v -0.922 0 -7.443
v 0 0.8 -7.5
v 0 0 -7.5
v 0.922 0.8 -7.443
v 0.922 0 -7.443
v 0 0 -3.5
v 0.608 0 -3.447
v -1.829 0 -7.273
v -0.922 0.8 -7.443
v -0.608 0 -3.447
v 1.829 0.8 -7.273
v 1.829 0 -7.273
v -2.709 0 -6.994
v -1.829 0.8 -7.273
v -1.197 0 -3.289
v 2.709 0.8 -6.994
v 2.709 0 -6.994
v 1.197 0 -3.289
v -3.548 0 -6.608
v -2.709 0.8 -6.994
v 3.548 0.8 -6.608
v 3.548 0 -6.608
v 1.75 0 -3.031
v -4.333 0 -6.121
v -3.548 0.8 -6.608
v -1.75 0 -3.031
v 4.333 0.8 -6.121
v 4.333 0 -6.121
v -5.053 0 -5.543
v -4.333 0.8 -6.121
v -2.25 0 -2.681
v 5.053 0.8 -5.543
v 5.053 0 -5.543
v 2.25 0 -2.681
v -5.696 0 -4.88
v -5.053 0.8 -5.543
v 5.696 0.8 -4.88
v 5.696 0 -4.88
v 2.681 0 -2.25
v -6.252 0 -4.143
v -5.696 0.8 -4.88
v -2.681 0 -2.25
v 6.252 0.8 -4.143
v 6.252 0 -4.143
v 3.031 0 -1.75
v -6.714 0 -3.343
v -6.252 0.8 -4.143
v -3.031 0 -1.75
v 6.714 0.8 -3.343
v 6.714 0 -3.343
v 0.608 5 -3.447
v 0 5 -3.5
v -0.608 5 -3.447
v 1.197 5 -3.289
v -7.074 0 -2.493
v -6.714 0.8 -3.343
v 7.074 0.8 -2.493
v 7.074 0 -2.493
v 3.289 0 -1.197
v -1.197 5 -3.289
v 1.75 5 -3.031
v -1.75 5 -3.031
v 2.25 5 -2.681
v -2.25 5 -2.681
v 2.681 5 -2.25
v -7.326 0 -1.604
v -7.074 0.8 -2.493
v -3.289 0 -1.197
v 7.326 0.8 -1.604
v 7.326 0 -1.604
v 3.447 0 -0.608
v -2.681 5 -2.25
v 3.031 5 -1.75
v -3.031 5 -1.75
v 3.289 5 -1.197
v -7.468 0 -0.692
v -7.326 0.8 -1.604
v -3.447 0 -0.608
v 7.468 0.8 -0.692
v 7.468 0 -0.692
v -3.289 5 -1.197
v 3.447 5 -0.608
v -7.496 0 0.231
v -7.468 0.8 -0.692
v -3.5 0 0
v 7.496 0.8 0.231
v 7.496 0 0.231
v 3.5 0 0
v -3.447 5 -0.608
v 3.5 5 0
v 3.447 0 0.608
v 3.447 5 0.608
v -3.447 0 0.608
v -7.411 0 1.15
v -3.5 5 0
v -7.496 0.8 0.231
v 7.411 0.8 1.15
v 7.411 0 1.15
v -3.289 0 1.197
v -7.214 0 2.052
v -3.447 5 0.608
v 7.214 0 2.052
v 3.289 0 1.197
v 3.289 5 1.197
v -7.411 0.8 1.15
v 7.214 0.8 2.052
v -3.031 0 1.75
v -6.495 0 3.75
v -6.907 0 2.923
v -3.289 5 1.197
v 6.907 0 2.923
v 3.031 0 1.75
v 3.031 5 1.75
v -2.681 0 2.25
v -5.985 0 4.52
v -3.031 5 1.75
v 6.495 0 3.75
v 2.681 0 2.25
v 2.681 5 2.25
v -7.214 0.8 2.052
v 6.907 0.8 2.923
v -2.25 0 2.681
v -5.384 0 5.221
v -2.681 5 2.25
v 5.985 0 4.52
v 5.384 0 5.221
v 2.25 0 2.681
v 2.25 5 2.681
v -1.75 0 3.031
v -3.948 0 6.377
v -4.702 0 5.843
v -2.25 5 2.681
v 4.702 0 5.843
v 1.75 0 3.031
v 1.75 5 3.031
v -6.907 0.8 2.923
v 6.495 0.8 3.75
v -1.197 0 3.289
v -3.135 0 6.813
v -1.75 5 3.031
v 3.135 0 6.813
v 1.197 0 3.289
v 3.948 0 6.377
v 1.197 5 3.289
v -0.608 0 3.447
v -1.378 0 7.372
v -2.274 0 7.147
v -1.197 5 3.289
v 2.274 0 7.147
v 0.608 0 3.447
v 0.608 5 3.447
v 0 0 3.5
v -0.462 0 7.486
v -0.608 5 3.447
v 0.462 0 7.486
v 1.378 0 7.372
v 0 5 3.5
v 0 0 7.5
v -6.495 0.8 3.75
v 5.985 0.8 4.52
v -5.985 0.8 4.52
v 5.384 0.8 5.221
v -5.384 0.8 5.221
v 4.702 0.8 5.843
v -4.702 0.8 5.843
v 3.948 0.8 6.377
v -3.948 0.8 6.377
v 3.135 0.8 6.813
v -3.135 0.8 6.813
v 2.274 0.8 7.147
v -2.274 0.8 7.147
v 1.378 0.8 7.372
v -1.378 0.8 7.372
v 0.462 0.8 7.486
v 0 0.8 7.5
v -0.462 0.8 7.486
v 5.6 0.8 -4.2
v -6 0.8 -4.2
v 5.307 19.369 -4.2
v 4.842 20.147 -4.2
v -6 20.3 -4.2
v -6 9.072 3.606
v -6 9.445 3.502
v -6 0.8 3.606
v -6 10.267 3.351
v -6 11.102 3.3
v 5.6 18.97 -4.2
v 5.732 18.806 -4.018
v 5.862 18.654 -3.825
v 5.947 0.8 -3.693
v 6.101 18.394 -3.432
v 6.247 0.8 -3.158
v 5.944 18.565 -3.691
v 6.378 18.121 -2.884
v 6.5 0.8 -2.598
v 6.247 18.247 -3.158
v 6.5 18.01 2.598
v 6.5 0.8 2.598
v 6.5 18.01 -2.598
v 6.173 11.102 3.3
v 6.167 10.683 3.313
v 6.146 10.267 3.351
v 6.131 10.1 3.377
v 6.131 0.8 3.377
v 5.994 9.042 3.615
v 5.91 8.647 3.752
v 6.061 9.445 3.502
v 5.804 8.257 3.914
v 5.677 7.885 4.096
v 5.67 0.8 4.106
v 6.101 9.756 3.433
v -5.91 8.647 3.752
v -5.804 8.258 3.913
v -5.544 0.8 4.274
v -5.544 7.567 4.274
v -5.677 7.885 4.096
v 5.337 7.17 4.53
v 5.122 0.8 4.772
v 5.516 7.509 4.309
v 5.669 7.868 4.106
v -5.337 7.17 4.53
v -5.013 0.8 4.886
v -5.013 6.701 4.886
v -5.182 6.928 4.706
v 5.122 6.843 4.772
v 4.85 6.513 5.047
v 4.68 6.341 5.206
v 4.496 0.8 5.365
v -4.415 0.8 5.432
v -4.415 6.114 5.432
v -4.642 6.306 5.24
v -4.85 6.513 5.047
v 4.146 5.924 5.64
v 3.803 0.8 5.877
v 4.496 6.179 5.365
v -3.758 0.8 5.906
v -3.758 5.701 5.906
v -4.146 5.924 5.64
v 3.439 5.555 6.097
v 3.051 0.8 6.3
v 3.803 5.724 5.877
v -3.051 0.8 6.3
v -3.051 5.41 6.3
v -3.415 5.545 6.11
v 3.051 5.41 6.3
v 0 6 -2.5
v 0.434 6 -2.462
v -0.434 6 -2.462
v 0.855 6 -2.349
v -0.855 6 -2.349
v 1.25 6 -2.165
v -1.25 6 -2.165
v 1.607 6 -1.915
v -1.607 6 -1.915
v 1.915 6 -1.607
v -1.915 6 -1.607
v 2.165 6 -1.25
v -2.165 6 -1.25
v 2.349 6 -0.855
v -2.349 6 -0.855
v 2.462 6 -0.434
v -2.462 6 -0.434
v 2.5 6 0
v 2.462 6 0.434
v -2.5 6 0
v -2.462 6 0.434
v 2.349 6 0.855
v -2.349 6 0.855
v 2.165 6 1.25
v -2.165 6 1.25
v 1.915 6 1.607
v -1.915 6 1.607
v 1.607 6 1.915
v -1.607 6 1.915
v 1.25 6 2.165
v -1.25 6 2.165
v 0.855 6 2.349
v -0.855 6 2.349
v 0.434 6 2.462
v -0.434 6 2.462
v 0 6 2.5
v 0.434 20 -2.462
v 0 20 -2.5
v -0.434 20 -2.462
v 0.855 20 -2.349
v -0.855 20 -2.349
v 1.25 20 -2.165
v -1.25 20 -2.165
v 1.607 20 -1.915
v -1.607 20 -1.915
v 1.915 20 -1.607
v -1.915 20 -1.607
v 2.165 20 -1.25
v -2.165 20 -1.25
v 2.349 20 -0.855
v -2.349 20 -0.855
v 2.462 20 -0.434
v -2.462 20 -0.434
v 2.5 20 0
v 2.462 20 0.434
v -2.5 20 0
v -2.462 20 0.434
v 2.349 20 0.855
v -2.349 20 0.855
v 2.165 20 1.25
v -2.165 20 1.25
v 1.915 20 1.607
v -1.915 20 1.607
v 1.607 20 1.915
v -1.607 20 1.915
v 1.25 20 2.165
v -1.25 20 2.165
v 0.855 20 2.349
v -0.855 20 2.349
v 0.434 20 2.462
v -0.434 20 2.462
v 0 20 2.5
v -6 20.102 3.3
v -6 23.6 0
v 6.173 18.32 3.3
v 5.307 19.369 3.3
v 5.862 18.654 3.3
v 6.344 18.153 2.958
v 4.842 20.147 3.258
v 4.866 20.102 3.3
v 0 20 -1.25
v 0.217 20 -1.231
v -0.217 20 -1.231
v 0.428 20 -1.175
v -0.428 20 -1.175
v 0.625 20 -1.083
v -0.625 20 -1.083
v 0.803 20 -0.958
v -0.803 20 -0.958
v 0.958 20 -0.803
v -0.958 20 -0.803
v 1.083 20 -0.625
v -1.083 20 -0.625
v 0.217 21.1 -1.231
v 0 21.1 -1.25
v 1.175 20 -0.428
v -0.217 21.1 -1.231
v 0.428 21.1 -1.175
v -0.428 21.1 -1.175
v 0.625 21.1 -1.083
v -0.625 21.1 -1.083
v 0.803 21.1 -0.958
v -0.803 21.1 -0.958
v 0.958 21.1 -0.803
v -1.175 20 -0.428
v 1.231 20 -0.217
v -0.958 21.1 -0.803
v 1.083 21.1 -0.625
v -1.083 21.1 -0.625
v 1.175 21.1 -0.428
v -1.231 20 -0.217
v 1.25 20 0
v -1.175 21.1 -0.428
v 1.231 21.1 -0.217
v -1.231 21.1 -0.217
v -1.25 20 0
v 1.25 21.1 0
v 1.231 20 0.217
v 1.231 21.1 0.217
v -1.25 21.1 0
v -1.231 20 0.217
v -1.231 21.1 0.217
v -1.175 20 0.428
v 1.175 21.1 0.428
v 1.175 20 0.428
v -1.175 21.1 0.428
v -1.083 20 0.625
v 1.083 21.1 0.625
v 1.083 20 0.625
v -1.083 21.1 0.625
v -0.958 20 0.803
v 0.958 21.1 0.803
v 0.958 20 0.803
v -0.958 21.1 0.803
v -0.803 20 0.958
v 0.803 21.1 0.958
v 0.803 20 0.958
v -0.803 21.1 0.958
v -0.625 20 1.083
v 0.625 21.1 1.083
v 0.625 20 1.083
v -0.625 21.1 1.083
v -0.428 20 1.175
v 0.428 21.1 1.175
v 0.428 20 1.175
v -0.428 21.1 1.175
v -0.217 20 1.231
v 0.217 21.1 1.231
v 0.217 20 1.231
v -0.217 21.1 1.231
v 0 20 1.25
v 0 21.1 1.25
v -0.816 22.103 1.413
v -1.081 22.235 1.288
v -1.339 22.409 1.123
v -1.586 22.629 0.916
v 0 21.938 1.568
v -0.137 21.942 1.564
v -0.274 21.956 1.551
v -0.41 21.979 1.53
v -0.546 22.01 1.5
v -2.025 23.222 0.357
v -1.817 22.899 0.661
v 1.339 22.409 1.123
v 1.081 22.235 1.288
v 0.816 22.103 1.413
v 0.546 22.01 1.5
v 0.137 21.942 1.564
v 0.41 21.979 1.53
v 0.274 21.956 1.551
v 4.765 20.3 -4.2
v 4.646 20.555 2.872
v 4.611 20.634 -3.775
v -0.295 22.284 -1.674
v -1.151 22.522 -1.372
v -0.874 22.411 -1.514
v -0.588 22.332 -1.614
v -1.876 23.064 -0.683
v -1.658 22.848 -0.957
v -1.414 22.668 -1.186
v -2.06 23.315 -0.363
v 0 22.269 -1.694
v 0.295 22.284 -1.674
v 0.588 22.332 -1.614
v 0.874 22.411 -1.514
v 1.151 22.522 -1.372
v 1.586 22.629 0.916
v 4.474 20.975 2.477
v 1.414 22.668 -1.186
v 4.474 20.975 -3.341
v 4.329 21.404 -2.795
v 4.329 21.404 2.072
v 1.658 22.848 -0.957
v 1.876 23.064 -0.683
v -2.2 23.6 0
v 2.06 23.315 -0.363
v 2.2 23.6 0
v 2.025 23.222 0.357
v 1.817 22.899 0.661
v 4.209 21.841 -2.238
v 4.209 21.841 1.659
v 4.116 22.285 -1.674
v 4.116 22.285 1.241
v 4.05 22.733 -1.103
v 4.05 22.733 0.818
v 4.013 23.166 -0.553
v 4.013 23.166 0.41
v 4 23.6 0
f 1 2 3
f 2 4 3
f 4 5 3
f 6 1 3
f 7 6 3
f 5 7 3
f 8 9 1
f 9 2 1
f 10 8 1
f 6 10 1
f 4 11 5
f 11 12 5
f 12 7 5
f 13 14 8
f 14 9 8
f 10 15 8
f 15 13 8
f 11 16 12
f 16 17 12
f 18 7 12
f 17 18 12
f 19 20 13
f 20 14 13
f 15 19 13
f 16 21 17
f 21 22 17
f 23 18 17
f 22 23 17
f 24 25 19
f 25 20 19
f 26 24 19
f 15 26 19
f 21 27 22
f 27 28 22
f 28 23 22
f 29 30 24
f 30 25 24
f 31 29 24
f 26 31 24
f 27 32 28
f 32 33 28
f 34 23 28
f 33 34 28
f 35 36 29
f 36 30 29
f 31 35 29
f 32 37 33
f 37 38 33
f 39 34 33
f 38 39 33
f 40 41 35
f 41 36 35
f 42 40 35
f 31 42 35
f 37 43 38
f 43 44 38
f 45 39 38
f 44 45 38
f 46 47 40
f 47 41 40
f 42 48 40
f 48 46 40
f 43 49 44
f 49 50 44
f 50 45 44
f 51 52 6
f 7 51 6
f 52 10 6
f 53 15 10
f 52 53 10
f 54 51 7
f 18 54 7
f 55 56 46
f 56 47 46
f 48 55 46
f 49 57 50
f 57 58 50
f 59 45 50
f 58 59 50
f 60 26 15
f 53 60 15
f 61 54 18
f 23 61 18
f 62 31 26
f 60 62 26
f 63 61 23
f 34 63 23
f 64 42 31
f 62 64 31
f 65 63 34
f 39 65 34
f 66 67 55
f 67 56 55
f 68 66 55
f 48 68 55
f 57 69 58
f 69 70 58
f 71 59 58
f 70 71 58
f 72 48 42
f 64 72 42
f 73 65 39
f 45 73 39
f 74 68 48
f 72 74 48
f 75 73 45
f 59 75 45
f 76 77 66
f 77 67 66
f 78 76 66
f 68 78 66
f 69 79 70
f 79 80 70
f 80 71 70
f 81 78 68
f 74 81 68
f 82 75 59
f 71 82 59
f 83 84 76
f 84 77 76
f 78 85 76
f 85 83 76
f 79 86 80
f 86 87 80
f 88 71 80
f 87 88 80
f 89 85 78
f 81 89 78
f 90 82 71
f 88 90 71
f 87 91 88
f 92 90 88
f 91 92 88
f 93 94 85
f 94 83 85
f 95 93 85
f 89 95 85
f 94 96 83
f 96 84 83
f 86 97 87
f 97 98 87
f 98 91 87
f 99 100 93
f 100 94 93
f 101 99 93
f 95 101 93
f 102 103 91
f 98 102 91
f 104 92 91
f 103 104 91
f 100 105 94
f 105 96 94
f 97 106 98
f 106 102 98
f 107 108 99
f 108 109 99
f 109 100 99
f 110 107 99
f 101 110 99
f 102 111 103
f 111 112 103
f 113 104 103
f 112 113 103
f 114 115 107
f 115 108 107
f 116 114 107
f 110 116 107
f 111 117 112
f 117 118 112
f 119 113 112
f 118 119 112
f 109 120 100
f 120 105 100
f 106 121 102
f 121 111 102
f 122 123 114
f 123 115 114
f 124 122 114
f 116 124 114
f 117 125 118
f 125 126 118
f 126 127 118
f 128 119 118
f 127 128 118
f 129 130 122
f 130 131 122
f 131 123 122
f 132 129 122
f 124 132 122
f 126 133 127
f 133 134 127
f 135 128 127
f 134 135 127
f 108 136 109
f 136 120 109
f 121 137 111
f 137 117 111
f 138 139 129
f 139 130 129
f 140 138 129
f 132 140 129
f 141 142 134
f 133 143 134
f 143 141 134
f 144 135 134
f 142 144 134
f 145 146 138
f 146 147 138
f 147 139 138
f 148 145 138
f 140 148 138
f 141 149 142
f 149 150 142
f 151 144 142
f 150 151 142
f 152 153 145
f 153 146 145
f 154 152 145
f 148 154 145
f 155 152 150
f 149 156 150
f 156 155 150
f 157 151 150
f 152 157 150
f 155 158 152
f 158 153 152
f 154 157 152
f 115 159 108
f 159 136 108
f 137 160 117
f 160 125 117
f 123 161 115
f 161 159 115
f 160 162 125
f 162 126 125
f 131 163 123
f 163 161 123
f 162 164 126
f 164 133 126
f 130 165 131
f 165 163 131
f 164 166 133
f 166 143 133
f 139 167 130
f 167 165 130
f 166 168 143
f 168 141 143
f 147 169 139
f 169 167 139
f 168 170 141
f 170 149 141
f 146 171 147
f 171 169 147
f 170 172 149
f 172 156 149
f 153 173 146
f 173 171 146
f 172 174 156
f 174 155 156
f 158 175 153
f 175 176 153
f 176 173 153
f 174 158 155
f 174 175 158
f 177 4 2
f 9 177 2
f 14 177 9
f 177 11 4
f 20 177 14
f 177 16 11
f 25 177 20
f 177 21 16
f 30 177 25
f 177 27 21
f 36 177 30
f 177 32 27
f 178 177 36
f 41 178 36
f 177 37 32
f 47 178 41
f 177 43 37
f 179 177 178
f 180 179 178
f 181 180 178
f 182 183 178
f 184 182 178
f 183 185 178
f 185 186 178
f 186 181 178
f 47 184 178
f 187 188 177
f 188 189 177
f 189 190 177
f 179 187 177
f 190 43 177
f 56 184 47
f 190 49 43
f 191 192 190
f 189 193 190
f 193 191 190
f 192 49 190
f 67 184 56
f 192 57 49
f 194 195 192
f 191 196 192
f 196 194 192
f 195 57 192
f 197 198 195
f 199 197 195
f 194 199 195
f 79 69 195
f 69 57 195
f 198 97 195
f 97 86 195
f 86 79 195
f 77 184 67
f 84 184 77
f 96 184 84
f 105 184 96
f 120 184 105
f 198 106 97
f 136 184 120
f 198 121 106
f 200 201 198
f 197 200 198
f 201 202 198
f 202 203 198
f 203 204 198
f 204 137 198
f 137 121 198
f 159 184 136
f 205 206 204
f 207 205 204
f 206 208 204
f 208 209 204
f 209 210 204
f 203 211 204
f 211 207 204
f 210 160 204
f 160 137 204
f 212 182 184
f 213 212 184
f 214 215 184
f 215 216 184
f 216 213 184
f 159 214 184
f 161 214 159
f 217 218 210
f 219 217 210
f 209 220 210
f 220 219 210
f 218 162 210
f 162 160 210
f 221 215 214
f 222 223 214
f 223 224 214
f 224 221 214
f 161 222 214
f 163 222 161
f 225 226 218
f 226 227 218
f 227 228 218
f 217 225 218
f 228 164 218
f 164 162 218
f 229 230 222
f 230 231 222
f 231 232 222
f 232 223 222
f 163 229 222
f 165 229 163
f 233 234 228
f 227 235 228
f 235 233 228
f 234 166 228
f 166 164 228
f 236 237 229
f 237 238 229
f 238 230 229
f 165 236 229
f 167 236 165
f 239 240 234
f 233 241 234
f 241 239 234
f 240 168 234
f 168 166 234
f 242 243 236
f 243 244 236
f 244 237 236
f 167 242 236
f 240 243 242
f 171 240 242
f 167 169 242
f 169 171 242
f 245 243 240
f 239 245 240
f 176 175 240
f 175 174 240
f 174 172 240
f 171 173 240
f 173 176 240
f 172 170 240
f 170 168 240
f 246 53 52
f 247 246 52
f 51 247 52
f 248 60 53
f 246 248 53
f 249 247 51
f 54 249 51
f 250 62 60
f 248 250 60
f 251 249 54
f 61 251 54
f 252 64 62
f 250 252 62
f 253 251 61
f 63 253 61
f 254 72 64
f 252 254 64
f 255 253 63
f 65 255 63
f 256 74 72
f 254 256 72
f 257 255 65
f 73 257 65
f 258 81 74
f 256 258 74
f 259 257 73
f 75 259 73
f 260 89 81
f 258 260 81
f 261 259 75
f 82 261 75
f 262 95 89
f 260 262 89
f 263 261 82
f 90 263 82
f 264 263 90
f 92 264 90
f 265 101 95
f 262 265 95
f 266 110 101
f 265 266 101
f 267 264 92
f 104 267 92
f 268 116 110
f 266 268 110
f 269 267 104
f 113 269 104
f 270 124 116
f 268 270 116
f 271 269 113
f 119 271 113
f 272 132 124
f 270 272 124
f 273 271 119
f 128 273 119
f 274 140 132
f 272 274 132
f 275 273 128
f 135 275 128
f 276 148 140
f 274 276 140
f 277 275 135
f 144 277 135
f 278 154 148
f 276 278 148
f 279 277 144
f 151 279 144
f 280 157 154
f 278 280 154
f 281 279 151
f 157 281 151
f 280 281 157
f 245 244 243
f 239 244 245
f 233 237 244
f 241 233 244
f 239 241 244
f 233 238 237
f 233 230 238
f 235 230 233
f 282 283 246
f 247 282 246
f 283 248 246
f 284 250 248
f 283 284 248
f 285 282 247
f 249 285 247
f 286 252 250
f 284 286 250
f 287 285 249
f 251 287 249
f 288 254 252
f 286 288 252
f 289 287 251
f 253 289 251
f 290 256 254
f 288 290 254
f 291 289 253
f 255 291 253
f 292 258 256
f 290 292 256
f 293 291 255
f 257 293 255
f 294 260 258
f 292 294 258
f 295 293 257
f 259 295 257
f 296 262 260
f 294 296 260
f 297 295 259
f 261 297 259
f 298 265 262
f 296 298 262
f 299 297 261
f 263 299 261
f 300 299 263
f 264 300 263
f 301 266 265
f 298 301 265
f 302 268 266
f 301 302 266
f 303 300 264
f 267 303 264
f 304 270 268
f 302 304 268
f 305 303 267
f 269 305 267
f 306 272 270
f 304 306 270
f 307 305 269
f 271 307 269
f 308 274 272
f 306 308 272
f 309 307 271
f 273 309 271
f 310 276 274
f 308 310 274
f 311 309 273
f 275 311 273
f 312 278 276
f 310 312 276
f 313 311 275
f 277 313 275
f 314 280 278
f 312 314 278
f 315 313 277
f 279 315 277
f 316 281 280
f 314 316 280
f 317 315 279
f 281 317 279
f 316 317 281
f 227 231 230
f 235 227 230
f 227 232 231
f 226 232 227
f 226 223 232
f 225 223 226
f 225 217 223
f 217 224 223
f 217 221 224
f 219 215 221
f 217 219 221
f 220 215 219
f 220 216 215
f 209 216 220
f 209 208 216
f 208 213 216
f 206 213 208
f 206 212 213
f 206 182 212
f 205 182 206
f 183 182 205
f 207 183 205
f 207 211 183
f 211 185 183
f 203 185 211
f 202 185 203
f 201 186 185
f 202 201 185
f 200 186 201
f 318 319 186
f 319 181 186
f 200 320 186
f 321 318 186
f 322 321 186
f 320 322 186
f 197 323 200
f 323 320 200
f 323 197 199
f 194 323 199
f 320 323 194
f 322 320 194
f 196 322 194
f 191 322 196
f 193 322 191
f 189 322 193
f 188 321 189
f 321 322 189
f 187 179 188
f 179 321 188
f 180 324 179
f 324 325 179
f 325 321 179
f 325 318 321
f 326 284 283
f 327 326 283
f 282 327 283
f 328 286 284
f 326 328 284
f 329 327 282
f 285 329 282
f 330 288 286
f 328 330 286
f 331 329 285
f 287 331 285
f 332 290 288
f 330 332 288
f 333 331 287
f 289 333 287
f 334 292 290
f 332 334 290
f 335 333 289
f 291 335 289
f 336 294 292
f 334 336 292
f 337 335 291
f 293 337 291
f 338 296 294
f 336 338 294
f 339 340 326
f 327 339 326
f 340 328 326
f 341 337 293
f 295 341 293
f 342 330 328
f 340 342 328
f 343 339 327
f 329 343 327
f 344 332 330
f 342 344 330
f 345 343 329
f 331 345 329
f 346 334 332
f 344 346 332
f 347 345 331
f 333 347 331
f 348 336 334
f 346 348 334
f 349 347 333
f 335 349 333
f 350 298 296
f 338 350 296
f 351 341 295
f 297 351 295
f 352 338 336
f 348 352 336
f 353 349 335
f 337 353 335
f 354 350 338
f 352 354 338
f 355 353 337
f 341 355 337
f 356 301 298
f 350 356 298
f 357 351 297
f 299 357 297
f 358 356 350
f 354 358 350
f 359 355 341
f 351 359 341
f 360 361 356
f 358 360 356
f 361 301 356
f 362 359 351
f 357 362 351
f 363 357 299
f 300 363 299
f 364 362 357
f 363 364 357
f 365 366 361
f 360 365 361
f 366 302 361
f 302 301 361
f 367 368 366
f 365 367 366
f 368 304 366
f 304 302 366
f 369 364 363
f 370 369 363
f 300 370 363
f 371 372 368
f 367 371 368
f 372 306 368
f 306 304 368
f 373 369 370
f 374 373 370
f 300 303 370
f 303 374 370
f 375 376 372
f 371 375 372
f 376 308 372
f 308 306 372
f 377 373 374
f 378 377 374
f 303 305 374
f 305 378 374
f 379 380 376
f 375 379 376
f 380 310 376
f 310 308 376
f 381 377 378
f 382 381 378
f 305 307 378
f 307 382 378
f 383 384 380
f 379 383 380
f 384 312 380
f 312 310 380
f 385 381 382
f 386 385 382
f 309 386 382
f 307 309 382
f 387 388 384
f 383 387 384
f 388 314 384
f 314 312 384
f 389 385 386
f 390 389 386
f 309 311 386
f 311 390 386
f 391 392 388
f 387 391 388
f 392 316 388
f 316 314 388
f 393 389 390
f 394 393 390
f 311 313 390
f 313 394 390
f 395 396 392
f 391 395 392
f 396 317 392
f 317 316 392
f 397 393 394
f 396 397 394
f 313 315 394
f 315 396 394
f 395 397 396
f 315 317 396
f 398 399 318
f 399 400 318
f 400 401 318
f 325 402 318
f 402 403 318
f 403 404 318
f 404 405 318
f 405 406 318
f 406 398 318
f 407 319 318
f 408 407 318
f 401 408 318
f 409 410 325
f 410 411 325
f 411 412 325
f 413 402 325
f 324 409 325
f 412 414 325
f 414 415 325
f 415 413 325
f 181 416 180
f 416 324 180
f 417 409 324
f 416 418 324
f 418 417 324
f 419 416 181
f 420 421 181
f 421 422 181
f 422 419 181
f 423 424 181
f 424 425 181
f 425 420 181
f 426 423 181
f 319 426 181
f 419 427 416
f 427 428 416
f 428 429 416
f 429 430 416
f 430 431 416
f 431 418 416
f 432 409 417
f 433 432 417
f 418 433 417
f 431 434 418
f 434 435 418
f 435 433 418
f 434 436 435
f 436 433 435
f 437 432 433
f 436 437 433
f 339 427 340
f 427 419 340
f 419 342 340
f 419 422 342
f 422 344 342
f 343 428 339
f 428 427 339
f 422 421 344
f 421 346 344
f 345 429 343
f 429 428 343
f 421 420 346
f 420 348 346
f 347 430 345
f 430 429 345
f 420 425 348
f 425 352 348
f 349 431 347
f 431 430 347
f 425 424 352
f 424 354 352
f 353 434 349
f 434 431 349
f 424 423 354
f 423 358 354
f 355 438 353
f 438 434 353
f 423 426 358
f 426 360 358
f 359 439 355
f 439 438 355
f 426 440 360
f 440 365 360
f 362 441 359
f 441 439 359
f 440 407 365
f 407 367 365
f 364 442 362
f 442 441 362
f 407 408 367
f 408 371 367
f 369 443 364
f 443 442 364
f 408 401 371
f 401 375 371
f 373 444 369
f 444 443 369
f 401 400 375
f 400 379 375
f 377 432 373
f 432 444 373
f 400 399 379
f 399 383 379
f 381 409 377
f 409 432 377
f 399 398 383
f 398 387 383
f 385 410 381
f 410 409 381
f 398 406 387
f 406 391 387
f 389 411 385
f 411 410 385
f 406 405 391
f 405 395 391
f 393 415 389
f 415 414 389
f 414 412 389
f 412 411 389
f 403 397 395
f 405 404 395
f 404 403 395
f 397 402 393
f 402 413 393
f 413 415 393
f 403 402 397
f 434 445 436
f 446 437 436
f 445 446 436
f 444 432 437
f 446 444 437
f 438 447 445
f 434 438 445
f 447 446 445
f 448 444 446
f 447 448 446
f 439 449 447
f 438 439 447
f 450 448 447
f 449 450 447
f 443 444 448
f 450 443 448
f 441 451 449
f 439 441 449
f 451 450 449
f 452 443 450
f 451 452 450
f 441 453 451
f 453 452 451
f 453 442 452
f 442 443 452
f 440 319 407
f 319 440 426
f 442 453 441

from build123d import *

# Parameters (mm, degrees)
ESBO_O1_R                = 7.5
ESBO_O1_R_2              = 1.25
RESSALTO_EXTRUS_O1_DEPTH = 23.6
CORTE_EXTRUS_O1_START    = -22.8
ESBO_O2_R                = 7.5
CORTE_EXTRUS_O1_DEPTH    = 22.8
CORTE_EXTRUS_O2_DEPTH    = 29.446616671
ESBO_O4_R                = 3.5
ESBO_O4_R_2              = 2.5
ESBO_O4_R_3              = 1.25
CORTE_EXTRUS_O3_DEPTH    = 4
ESBO_O4_3_R              = 2.5
ESBO_O4_3_R_2            = 1.25
CORTE_EXTRUS_O4_DEPTH    = 20
ESBO_O5_R                = 2.2
ESBO_O6_R                = 1.25
ESBO_O7_R                = 7.5
CORTE_EXTRUS_O5_DEPTH    = 28.015736242
CHANFRO1_SIZE            = 2


with BuildPart() as part:
    # Esboço1 → Ressalto-extrusão1 (new body)
    with BuildSketch(Plane(origin=(0, 0, 0), x_dir=(1, 0, 0), z_dir=(0, 1, 0))):
        with Locations(Location((0, 0, 0), (0, 0, 270))):
            Circle(ESBO_O1_R)
        with Locations(Location((0, 0, 0), (0, 0, 270))):
            Circle(ESBO_O1_R_2, mode=Mode.SUBTRACT)
    extrude(amount=RESSALTO_EXTRUS_O1_DEPTH)

    # Esboço2 → Corte-extrusão1 (cut)
    with BuildSketch(Plane(origin=(0, 23.6, 0), x_dir=(1, 0, 0), z_dir=(0, 1, 0)).offset(CORTE_EXTRUS_O1_START)):
        with Locations(Location((0, 0, 0), (0, 0, 270))):
            Circle(ESBO_O2_R)
        with BuildLine():
            ThreePointArc((-6, -3.605551275), (-4.721885351, -5.167571841), (-3.05122926, -6.3))
            Line((-3.05122926, -6.3), (3.05122926, -6.3))
            ThreePointArc((3.05122926, -6.3), (5.121772645, -4.771524386), (6.5, -2.598076211))
            Line((6.5, -2.598076211), (6.5, 2.598076211))
            ThreePointArc((6.5, 2.598076211), (6.102789523, 3.428696552), (5.6, 4.2))
            Line((5.6, 4.2), (-6, 4.2))
            Line((-6, 4.2), (-6, -3.605551275))
        make_face(mode=Mode.SUBTRACT)
    extrude(amount=CORTE_EXTRUS_O1_DEPTH, mode=Mode.SUBTRACT)

    # Esboço3 → Corte-extrusão2 (cut, through all)
    with BuildSketch(Plane(origin=(6.5, 0, 0), x_dir=(0, 0, -1), z_dir=(1, 0, 0))):
        with BuildLine():
            Line((-6.3, 0.8), (-6.3, 5.41))
            ThreePointArc((-6.3, 5.41), (-4.095903015, 7.8849582), (-3.3, 11.102099788))
            Line((-3.3, 11.102099788), (-3.3, 20.102099788))
            Line((-3.3, 20.102099788), (0, 23.6))
            Line((0, 23.6), (4.2, 20.3))
            Line((4.2, 20.3), (4.2, 26.498132866))
            Line((4.2, 26.498132866), (-7.5, 26.498132866))
            Line((-7.5, 26.498132866), (-7.5, 0.8))
            Line((-7.5, 0.8), (-6.3, 0.8))
        make_face()
    extrude(amount=-CORTE_EXTRUS_O2_DEPTH, mode=Mode.SUBTRACT)

    # Esboço4 → Corte-extrusão3 (cut)
    # profile 1 of 2: a face of its own
    with BuildSketch(Plane.XZ):
        with Locations(Location((0, 0, 0), (0, 0, 270))):
            Circle(ESBO_O4_R)
        Circle(ESBO_O4_R_2, mode=Mode.SUBTRACT)
    # profile 2 of 2: a face of its own
    with BuildSketch(Plane.XZ):
        Circle(ESBO_O4_R_2)
        with Locations(Location((0, 0, 0), (0, 0, 270))):
            Circle(ESBO_O4_R_3, mode=Mode.SUBTRACT)
    extrude(amount=-CORTE_EXTRUS_O3_DEPTH, mode=Mode.SUBTRACT)

    # Esboço4<3> → Corte-extrusão4 (cut)
    with BuildSketch(Plane.XZ):
        with Locations(Location((0, 0, 0), (0, 0, 270))):
            Circle(ESBO_O4_3_R)
        with Locations(Location((0, 0, 0), (0, 0, 270))):
            Circle(ESBO_O4_3_R_2, mode=Mode.SUBTRACT)
    extrude(amount=-CORTE_EXTRUS_O4_DEPTH, mode=Mode.SUBTRACT)

    # Esboço5 → Loft de corte1 section 0
    with BuildSketch(Plane(origin=(0, 23.6, 0), x_dir=(1, 0, 0), z_dir=(0, 1, 0))):
        Circle(ESBO_O5_R)
    # Esboço6 → Loft de corte1 section 1
    with BuildSketch(Plane(origin=(0, 21.1, 0), x_dir=(-1, 0, 0), z_dir=(0, -1, 0))):
        Circle(ESBO_O6_R)
    loft(mode=Mode.SUBTRACT)

    # Esboço7 → Corte-extrusão5 (cut, through all)
    with BuildSketch(Plane.XY.offset(3.3)):
        with Locations((11.5, 23.6)):
            Circle(ESBO_O7_R)
    extrude(amount=-CORTE_EXTRUS_O5_DEPTH, mode=Mode.SUBTRACT)

    # Chanfro1
    # the kernel refuses this chamfer: 2 mm, written as the material it takes off along each edge
    with BuildSketch(Plane(origin=(0, 4, 0), x_dir=(0, 0, -1), z_dir=(-1, 0, 0))) as chanfro1_piece_1_section:
        Polygon((2.5 + CHANFRO1_SIZE, 0), (2.5, -CHANFRO1_SIZE), (2.5, 0), align=None)
    chanfro1_piece_1 = revolve(axis=Axis((0, 4, 0), (0, -1, 0)), mode=Mode.PRIVATE)
    chanfro1_piece_1 = chanfro1_piece_1 & Plane(origin=(0, 5.506317811, 0), x_dir=(0, 0, -1), z_dir=(0, -1, 0)) * Cylinder(3.5, 18, mode=Mode.PRIVATE)
    add(chanfro1_piece_1, mode=Mode.SUBTRACT)


solid = part.part
